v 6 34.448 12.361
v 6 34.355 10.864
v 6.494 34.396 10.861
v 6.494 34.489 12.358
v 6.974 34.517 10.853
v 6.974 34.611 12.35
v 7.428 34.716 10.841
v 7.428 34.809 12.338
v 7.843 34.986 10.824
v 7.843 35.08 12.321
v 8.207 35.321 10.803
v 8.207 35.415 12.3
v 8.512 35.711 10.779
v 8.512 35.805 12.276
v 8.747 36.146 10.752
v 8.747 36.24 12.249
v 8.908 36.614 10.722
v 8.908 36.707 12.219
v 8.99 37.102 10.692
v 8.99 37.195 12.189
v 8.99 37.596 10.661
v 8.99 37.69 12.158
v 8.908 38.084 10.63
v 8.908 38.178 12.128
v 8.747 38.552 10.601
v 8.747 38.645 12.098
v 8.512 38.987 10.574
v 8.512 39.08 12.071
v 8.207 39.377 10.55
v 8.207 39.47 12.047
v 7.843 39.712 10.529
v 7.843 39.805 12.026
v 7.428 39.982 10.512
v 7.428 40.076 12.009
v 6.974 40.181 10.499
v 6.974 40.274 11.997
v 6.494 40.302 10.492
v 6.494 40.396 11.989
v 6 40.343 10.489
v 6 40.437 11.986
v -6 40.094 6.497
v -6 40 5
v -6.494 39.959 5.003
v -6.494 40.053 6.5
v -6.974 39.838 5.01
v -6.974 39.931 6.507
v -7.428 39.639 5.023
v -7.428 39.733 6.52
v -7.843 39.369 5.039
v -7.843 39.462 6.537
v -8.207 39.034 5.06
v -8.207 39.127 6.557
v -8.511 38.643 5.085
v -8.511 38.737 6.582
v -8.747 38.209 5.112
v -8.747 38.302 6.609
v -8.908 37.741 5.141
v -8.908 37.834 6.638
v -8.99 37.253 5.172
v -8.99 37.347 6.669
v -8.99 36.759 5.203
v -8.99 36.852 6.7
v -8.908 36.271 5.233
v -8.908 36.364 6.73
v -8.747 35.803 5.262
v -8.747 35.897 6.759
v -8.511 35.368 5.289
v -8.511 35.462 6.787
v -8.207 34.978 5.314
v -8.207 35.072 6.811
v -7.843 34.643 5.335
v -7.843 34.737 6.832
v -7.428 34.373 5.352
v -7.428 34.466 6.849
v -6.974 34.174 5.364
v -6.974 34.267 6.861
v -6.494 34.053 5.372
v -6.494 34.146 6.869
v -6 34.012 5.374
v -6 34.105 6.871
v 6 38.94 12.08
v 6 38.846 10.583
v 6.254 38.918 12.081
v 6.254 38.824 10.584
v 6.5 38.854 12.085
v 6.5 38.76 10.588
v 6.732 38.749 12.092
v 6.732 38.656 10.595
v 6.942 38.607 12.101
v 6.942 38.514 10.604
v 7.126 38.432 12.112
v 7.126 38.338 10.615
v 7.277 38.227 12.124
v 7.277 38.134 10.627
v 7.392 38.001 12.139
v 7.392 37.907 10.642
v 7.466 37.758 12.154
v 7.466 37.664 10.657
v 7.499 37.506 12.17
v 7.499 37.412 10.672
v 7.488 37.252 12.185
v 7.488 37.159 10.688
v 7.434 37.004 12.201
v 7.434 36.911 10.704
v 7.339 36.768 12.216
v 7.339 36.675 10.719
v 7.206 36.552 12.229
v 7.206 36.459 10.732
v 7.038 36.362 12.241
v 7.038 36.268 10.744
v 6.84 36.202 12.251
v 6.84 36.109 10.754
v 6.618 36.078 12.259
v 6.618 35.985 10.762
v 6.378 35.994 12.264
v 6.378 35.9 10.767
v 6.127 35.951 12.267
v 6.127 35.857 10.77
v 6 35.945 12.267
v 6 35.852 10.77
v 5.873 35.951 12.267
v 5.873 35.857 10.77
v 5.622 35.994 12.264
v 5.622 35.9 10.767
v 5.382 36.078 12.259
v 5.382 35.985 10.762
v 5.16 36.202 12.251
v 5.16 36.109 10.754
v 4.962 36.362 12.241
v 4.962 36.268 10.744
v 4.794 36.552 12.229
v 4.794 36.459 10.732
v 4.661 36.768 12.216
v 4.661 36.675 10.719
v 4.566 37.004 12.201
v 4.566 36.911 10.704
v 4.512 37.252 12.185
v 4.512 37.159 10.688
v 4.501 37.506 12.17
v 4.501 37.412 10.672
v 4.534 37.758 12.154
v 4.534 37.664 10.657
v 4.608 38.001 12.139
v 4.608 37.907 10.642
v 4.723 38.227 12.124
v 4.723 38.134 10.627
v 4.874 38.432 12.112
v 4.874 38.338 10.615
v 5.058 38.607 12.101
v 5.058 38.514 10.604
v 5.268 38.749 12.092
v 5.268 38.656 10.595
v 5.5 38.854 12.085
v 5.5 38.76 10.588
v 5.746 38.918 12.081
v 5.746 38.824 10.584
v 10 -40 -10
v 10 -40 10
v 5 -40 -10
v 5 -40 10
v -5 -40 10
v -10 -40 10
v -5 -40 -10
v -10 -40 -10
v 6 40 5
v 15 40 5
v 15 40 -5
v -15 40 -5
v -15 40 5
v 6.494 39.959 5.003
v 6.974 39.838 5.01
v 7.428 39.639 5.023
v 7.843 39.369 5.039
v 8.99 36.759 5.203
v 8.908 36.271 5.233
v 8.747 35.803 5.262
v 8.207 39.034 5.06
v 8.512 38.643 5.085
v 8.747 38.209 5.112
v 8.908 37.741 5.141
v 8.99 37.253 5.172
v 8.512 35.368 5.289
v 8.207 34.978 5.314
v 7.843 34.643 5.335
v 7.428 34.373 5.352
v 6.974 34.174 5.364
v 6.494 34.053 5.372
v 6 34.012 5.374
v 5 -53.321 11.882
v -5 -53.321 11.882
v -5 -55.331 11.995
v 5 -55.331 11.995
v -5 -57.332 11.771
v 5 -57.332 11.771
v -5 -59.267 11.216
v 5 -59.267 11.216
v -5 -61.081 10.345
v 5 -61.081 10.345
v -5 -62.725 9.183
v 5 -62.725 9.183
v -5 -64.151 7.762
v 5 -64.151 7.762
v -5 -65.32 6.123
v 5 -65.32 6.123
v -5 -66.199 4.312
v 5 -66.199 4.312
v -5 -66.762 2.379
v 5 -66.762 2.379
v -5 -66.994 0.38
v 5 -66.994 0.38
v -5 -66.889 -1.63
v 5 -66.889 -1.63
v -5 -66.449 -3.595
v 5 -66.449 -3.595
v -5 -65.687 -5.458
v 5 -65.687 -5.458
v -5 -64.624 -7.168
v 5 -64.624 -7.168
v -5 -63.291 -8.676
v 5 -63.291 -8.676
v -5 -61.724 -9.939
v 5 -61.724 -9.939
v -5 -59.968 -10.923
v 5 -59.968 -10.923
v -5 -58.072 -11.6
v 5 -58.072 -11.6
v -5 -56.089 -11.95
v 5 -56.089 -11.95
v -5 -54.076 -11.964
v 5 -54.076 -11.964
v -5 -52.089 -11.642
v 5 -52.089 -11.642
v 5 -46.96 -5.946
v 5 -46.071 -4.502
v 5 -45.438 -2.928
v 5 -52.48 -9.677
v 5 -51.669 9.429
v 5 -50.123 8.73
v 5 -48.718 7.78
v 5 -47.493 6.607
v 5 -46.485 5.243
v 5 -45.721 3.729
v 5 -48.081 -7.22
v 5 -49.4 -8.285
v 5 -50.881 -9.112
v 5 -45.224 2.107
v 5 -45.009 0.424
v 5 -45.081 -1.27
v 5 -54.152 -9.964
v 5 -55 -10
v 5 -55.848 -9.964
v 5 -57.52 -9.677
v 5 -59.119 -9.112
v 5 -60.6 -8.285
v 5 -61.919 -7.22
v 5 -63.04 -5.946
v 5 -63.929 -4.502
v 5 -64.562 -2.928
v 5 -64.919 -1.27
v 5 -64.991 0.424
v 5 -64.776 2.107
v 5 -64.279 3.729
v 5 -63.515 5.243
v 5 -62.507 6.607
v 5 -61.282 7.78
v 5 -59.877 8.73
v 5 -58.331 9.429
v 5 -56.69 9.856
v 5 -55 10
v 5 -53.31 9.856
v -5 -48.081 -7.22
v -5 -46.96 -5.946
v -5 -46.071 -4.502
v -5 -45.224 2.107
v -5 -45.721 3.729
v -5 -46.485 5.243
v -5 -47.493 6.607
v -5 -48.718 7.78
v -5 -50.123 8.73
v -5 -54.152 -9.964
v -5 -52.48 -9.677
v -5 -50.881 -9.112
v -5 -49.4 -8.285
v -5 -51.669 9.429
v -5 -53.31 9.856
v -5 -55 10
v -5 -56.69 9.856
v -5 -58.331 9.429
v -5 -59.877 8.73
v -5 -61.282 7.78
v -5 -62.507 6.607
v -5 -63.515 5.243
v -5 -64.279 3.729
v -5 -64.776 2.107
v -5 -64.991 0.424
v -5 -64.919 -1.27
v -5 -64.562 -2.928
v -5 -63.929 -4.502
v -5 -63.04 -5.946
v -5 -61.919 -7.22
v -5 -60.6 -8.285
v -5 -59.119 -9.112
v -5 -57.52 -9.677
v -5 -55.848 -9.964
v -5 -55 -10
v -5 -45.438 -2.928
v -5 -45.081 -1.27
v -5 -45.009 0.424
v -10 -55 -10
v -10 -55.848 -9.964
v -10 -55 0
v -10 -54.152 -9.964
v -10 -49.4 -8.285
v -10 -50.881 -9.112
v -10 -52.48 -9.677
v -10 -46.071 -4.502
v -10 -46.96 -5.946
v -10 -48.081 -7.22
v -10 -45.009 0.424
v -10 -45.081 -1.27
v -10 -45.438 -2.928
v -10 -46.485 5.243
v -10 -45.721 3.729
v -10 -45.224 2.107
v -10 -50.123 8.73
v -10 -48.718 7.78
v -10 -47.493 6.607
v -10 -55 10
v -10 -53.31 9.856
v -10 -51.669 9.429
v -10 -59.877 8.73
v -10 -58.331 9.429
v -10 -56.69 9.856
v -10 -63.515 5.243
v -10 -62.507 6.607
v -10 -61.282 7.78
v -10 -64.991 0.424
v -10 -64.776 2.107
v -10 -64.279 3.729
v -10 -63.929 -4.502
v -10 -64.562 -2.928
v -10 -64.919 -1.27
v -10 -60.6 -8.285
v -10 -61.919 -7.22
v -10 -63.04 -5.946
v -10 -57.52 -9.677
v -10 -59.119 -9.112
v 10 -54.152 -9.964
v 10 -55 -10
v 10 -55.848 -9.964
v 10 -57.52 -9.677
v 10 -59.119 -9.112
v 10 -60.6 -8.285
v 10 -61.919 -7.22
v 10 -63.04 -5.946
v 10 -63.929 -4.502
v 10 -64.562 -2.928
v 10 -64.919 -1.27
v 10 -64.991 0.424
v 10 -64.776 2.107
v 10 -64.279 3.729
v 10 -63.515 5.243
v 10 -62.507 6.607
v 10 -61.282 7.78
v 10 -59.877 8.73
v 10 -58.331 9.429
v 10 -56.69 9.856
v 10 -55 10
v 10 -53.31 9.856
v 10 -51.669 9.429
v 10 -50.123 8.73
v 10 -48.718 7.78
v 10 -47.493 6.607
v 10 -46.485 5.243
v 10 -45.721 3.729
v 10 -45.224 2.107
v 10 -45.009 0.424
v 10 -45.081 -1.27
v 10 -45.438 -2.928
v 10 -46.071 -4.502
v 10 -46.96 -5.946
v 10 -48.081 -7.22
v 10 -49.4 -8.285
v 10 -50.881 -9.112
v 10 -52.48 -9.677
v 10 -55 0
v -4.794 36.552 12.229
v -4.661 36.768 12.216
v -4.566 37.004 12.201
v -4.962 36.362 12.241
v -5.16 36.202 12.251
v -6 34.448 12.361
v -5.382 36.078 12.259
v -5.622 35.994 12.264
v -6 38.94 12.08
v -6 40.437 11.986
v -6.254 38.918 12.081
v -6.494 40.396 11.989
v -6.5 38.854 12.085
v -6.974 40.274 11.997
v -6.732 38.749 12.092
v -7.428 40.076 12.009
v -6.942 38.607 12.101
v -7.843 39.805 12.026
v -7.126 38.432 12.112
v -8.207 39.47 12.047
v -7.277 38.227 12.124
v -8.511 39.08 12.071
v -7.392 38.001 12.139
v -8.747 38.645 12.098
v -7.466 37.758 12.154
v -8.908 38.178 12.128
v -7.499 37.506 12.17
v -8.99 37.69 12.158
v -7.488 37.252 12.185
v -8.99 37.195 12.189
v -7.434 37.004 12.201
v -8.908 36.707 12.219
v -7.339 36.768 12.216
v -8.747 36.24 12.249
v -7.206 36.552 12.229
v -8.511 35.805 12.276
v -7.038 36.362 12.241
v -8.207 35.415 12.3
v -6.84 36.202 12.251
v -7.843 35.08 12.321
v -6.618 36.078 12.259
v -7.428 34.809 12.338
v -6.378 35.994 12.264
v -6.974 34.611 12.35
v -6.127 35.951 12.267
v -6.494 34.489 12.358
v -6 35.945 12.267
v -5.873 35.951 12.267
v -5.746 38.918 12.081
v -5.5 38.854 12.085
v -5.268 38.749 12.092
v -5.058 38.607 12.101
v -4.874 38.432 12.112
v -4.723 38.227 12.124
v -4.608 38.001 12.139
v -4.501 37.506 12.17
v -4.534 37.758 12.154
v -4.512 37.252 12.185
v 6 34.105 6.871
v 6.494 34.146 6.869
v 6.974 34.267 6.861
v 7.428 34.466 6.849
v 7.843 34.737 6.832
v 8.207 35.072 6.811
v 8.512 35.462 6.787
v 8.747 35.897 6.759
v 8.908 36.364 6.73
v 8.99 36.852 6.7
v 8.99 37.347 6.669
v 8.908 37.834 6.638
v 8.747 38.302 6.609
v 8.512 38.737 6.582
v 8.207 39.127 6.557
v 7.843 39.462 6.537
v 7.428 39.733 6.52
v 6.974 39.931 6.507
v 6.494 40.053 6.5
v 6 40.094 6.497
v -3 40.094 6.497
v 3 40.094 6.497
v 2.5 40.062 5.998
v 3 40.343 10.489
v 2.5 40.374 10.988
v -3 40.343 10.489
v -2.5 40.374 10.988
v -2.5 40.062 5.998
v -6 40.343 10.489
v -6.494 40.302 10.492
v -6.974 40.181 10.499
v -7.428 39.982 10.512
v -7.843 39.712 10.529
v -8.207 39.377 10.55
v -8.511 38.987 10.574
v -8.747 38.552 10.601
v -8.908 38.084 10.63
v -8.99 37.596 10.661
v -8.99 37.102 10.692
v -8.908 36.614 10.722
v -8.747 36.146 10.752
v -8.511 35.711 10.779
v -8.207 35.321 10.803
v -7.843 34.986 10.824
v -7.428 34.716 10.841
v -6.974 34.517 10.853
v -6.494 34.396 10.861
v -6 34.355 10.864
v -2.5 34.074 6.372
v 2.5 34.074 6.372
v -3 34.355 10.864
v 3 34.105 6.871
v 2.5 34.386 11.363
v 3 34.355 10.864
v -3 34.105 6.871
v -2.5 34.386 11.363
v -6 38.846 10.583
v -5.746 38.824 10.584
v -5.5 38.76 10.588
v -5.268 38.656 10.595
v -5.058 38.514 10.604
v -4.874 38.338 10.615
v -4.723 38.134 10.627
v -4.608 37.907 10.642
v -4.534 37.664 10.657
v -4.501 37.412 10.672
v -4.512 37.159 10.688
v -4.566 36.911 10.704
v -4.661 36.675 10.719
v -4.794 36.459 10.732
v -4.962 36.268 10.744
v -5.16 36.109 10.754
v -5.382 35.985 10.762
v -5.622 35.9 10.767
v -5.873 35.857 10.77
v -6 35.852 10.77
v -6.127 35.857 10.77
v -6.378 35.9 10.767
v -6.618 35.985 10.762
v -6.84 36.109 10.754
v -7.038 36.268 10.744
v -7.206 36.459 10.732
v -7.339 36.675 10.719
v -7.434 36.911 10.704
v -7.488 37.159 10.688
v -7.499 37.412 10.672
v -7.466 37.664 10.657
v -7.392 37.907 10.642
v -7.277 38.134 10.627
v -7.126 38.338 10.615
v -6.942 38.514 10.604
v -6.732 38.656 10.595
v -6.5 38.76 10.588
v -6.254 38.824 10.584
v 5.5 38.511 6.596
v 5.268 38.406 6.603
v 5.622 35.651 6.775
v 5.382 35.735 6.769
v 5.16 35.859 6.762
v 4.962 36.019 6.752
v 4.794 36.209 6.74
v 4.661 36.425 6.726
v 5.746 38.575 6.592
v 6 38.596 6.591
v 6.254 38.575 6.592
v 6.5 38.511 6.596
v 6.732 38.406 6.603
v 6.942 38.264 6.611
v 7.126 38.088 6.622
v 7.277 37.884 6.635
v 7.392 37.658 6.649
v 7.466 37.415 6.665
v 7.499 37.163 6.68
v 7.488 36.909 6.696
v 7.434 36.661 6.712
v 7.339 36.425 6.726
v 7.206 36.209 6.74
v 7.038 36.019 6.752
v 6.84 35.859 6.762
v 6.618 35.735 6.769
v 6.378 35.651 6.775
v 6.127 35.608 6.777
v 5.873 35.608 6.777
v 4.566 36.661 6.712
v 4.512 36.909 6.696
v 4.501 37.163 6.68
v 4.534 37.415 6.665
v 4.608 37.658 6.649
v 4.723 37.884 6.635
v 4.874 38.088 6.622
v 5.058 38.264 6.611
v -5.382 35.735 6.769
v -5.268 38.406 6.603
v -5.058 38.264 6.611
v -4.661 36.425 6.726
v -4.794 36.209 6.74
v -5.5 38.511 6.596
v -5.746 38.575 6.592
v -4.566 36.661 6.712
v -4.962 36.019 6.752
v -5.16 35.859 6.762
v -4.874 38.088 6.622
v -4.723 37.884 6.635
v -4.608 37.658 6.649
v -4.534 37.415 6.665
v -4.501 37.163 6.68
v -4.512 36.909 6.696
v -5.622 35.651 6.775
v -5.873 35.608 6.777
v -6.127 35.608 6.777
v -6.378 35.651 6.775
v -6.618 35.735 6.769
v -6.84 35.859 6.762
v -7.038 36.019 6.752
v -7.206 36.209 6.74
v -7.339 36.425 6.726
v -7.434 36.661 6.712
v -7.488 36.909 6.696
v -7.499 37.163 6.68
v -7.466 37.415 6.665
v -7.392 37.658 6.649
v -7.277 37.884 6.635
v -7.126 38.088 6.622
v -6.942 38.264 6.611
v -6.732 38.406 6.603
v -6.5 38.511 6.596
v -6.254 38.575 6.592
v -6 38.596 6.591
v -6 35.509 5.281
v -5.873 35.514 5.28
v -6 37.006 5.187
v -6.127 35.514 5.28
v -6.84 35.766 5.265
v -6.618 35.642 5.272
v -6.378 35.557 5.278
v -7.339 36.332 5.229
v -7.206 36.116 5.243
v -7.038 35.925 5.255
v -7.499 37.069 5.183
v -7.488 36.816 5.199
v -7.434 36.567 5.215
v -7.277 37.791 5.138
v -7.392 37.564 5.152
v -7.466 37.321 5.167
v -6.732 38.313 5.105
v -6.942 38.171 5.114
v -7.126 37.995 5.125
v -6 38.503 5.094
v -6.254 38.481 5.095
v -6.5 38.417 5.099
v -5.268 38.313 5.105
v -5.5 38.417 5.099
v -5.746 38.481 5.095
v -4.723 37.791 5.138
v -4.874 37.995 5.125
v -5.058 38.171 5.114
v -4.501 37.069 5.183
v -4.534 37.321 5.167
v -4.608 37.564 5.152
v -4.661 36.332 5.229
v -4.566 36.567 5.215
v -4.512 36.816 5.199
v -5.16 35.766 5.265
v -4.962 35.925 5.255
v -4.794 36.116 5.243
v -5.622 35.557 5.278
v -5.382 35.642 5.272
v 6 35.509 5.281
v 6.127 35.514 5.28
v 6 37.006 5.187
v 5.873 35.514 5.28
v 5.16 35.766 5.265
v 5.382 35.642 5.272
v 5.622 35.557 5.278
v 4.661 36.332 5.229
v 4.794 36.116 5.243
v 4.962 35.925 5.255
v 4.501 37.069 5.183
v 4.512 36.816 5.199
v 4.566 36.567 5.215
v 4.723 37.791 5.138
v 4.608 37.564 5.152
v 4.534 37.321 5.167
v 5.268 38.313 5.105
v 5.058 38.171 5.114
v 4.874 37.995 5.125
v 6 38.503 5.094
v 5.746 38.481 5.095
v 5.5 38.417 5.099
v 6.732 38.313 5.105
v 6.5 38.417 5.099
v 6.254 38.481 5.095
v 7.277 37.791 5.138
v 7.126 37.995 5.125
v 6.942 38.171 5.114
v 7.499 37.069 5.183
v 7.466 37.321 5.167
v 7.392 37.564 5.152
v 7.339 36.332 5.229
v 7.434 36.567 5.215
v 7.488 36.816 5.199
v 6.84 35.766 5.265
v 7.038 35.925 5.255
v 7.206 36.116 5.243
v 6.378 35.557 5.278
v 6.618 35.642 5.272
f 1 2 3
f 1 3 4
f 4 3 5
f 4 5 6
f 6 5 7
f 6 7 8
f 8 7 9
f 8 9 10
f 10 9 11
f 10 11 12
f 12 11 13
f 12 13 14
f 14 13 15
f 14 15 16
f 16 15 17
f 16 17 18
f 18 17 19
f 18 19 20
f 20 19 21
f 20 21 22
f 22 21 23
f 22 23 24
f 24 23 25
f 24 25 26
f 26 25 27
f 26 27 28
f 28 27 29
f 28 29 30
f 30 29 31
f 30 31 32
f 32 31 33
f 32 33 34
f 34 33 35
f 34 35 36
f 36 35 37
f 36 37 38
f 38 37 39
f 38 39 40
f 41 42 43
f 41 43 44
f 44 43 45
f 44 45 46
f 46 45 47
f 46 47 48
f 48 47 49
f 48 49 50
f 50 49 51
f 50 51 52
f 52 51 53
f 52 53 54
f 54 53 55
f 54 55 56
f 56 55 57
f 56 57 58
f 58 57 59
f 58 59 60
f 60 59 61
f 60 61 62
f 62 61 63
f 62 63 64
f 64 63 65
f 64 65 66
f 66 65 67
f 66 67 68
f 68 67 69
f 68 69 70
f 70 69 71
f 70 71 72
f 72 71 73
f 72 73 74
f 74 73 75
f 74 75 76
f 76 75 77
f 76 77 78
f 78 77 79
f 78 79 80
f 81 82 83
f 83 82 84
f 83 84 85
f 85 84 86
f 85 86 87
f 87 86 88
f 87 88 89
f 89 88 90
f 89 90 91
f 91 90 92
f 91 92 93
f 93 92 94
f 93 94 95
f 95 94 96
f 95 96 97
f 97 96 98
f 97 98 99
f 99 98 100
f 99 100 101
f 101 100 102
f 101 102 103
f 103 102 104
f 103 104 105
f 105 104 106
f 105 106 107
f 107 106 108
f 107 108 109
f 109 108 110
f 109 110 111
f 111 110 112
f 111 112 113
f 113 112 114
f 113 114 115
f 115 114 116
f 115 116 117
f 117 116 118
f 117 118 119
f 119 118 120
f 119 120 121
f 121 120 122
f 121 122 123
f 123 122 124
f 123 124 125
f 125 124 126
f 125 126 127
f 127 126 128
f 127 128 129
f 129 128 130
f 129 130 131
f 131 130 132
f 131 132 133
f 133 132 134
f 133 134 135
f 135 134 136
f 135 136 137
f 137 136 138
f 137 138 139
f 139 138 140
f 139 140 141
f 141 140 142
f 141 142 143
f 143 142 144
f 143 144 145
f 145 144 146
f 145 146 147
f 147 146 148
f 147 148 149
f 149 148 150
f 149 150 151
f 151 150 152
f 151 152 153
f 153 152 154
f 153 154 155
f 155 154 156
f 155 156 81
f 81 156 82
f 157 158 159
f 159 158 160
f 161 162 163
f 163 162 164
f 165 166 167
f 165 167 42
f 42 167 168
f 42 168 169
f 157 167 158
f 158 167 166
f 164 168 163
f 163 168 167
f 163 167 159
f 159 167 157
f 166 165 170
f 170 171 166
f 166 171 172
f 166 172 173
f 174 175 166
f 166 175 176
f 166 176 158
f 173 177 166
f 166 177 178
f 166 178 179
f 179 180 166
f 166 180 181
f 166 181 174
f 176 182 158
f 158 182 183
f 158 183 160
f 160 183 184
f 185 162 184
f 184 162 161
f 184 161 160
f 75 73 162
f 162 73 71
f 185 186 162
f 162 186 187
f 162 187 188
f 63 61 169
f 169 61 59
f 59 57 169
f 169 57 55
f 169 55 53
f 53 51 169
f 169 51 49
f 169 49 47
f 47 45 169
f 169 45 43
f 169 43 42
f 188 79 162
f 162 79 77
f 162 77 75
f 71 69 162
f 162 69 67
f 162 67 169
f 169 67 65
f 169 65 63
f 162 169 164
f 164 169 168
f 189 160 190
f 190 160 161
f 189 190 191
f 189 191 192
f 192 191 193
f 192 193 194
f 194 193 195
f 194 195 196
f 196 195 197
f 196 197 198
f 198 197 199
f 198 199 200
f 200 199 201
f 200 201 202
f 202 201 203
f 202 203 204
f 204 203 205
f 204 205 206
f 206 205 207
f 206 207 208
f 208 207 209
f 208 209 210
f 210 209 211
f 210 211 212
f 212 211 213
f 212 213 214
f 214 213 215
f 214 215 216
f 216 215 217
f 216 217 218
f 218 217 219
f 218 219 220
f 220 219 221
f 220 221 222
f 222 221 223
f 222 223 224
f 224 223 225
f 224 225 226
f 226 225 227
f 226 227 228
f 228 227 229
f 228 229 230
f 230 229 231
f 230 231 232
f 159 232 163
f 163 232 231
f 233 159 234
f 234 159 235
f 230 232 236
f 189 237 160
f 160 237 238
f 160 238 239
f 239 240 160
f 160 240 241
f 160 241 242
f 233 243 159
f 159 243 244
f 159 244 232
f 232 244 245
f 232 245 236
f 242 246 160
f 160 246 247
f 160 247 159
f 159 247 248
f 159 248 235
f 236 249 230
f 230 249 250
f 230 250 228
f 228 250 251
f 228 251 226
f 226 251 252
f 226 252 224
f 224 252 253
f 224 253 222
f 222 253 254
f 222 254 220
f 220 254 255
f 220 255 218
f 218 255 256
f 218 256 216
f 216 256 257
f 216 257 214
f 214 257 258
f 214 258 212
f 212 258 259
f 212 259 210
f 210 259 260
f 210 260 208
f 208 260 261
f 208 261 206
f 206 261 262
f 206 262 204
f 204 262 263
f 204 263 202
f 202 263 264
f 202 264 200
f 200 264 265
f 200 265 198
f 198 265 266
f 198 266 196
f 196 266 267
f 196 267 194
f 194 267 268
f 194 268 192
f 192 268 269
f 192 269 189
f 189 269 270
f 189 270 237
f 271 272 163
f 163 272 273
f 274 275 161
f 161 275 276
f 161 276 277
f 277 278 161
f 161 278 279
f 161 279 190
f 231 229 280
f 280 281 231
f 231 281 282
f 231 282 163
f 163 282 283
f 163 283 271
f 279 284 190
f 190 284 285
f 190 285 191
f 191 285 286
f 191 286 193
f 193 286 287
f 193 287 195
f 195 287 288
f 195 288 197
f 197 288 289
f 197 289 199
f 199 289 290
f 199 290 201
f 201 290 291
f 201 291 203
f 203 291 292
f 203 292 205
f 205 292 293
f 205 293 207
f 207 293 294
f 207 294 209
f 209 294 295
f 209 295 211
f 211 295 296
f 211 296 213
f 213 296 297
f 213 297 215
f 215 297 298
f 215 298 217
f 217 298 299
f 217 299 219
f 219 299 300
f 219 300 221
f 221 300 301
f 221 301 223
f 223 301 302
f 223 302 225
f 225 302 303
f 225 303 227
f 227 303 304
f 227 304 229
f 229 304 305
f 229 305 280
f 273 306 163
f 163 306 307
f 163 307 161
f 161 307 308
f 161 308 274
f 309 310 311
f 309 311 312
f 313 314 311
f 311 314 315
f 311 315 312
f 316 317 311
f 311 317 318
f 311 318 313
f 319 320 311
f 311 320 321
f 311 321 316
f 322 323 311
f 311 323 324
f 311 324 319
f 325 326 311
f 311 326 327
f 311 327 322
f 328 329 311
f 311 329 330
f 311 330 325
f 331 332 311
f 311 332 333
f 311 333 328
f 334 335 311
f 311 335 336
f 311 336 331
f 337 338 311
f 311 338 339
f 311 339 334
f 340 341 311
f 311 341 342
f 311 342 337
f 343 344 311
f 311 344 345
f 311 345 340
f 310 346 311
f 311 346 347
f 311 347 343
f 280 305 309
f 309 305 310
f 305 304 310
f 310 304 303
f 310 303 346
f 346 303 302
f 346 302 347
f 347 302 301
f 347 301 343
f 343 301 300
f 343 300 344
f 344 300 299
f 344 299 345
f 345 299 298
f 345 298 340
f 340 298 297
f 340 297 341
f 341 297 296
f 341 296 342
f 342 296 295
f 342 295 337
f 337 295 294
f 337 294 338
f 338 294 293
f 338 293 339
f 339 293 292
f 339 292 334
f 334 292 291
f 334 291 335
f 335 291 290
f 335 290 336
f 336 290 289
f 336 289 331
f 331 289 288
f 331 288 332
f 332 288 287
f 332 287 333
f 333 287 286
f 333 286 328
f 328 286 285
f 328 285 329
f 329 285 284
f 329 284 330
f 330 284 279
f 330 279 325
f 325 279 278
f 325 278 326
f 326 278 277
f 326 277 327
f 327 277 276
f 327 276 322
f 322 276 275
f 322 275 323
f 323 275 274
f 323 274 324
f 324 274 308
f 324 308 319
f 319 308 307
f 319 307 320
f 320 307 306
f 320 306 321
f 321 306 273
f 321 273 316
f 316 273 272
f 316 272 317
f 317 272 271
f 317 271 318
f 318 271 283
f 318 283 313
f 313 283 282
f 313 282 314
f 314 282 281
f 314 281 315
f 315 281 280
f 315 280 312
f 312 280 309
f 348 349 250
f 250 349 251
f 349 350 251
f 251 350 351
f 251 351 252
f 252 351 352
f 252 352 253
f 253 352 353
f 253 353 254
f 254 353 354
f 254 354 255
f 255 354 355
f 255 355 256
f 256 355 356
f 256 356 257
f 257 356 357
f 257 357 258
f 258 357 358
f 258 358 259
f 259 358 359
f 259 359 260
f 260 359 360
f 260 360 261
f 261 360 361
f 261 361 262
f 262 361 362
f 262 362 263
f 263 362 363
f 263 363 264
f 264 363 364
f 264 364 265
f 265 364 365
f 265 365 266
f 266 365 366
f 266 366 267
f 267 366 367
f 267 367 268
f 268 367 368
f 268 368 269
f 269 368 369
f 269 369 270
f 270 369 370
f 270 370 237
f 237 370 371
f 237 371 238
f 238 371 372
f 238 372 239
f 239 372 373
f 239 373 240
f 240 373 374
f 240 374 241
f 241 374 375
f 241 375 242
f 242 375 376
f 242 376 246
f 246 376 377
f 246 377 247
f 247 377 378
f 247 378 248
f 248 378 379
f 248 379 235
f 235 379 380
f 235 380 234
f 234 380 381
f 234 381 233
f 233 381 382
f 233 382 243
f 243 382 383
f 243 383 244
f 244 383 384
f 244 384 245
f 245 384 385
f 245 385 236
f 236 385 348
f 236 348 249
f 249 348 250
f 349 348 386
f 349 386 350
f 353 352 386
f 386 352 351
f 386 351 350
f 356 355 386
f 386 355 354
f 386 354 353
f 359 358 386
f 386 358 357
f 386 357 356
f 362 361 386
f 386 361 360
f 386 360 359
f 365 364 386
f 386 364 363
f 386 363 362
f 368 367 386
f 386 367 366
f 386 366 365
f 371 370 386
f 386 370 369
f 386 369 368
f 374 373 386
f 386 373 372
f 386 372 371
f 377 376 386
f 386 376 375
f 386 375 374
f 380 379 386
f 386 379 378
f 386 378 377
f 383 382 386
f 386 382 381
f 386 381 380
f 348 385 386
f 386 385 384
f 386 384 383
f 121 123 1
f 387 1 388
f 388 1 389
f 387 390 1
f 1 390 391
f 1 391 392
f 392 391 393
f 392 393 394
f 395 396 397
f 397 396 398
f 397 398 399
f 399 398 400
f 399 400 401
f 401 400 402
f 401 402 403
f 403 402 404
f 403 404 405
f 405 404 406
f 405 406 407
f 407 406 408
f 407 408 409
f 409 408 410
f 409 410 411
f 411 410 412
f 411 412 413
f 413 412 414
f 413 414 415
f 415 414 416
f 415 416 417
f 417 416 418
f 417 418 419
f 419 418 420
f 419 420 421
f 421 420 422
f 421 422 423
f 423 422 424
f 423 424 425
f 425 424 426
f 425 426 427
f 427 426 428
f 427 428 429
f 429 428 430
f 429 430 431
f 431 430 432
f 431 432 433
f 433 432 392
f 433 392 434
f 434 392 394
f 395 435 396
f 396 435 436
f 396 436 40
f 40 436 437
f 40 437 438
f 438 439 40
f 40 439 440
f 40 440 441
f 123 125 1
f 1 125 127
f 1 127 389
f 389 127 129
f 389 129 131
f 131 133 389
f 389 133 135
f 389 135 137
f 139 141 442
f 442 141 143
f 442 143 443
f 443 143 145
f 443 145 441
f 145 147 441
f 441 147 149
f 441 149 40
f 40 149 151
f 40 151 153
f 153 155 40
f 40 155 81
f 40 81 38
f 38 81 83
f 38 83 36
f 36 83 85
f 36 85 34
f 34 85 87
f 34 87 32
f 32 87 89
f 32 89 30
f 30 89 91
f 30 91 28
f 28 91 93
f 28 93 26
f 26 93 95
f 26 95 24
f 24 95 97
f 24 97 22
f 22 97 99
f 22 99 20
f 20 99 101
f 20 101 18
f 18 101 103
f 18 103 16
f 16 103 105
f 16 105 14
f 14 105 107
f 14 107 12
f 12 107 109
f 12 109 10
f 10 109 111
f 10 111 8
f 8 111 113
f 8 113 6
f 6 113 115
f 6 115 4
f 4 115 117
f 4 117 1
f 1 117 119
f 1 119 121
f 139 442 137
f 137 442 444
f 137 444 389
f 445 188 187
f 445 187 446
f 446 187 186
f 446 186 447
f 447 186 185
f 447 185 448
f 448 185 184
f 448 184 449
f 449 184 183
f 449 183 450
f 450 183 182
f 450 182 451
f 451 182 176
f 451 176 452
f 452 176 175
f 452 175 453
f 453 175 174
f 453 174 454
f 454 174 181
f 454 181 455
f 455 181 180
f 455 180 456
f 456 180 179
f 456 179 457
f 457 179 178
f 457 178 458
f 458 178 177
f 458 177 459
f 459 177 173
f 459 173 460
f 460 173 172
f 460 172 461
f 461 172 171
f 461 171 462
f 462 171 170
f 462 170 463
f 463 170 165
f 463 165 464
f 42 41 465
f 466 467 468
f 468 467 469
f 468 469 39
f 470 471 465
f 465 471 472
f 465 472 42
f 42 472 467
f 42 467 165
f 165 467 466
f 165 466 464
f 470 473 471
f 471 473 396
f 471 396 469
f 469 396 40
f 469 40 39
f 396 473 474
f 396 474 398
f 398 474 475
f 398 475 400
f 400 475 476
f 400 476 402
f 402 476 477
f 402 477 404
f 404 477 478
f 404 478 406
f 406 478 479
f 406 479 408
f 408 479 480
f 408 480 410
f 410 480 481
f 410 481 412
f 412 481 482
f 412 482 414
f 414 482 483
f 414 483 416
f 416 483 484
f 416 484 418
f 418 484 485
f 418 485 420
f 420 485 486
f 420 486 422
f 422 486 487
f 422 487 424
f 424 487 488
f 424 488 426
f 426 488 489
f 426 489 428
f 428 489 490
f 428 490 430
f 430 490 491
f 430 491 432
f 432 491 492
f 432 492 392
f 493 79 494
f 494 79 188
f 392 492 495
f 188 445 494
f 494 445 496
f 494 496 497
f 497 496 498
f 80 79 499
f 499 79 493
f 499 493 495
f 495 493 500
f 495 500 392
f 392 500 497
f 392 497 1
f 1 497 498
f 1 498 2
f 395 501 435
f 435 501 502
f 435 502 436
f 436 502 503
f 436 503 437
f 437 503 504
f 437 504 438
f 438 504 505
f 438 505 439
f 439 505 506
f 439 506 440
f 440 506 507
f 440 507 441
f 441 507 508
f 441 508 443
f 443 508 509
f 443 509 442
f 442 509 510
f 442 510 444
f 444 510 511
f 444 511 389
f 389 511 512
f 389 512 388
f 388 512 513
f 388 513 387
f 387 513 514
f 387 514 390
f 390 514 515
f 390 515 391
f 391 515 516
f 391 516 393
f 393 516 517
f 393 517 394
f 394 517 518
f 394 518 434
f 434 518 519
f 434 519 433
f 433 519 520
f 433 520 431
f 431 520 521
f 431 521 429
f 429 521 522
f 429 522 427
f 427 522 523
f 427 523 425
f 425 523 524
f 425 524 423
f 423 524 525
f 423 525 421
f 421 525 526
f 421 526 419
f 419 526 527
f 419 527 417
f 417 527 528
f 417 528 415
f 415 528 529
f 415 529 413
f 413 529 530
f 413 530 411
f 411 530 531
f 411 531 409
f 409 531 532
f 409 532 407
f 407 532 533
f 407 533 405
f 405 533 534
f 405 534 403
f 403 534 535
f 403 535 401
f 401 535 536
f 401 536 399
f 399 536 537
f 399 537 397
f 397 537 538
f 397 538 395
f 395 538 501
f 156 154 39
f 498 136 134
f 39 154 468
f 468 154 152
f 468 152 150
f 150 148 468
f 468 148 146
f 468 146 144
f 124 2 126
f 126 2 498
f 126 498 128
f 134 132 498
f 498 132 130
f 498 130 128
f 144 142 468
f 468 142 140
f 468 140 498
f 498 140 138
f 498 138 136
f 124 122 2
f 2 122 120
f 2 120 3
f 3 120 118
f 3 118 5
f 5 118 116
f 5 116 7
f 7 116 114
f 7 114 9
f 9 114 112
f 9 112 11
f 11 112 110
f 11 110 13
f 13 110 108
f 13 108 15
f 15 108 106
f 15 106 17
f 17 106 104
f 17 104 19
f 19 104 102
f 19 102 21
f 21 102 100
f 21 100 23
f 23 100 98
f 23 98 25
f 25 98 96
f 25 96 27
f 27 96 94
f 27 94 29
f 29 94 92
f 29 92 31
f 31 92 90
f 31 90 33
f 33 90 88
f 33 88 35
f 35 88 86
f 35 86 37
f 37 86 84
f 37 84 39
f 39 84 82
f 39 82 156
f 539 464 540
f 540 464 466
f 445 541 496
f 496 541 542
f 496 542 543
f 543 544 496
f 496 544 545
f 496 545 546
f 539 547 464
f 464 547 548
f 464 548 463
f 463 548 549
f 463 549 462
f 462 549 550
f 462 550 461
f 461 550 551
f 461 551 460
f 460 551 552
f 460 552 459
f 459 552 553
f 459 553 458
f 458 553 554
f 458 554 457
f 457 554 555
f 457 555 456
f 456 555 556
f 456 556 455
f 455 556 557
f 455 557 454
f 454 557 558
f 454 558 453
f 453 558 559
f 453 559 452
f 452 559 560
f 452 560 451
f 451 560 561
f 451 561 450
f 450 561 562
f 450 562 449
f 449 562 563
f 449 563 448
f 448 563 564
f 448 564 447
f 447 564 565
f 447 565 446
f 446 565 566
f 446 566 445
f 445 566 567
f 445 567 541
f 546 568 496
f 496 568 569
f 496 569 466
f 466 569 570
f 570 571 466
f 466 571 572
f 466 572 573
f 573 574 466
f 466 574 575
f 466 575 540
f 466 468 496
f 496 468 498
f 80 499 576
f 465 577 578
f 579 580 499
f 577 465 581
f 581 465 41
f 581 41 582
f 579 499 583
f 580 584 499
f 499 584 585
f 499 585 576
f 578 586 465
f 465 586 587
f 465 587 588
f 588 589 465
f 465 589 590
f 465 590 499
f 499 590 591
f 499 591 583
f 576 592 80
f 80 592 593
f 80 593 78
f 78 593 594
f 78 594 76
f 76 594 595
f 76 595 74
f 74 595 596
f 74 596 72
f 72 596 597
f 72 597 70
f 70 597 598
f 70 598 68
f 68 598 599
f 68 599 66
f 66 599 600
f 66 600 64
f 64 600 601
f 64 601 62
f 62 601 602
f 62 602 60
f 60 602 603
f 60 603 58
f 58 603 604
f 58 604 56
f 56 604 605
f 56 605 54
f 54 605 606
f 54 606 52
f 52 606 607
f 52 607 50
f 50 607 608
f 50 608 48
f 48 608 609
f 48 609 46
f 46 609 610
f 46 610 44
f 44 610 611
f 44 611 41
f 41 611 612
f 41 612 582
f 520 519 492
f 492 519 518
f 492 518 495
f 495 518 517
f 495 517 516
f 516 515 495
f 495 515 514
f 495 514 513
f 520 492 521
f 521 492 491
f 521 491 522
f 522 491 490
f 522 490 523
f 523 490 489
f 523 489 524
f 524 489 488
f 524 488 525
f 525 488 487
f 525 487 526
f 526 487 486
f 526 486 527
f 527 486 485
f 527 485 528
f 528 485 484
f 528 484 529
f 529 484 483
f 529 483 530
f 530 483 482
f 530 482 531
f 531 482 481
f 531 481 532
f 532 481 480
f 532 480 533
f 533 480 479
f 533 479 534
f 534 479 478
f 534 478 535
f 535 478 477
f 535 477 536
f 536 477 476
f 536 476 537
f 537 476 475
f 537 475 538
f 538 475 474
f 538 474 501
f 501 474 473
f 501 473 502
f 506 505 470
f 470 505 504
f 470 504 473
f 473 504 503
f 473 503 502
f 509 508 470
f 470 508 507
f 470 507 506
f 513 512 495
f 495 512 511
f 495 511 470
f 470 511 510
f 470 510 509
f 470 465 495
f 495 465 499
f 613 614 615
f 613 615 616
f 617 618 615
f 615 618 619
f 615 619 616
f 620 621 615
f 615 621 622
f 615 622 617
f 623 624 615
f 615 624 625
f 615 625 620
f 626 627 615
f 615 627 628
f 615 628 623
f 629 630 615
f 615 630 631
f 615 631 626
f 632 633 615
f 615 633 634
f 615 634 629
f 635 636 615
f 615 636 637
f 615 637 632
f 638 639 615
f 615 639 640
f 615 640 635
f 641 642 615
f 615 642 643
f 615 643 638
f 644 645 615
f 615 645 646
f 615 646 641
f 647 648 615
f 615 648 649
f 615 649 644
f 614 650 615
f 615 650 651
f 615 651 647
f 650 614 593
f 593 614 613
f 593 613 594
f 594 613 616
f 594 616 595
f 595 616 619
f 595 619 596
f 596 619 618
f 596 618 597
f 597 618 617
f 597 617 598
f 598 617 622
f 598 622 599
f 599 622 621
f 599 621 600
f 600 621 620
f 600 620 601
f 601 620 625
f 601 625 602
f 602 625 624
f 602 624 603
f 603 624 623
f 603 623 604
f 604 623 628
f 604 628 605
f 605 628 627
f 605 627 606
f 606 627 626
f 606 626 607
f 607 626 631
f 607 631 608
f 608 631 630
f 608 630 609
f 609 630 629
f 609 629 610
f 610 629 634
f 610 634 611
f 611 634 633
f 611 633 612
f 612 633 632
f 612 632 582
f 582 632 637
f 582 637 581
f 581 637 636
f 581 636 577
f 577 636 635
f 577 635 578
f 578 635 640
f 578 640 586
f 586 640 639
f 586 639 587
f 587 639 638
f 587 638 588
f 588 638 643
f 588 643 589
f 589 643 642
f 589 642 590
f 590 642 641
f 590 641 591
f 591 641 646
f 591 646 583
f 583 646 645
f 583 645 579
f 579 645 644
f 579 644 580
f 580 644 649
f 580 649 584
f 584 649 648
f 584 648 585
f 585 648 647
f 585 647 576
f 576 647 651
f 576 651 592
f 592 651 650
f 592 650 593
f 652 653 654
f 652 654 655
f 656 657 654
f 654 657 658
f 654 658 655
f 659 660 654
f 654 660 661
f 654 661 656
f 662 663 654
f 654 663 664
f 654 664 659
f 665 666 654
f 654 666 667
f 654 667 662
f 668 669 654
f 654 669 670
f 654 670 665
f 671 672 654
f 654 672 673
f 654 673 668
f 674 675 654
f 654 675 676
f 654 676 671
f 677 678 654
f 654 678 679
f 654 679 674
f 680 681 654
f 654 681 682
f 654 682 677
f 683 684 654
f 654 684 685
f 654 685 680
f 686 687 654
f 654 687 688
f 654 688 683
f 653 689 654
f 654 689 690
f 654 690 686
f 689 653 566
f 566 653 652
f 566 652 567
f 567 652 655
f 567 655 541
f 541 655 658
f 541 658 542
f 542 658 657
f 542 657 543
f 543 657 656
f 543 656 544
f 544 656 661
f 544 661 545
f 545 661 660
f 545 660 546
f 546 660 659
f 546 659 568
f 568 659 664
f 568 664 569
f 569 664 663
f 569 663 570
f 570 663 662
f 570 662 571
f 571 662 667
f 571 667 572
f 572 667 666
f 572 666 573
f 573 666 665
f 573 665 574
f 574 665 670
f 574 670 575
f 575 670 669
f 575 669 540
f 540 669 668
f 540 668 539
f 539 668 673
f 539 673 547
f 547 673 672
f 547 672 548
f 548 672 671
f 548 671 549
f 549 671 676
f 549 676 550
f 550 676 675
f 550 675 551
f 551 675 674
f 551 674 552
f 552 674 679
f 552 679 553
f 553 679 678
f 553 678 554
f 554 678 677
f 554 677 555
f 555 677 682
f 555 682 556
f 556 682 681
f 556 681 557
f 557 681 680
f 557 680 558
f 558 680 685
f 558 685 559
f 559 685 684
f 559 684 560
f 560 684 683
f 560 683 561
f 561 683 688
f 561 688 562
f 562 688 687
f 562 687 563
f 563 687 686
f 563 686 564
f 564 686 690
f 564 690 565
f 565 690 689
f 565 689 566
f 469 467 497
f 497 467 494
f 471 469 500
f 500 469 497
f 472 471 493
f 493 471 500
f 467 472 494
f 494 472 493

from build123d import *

# Parameters (mm, degrees)
SALIENTE_EXTRUIR1_DEPTH = 5
CROQUIS4_R              = 10
SALIENTE_EXTRUIR2_DEPTH = 10
CROQUIS5_R              = 1.5
SALIENTE_EXTRUIR3_DEPTH = 7
CORTAR_EXTRUIR1_REACH   = 110.601
CROQUIS6_W              = 6
CROQUIS6_H              = 4
CROQUIS7_W              = 5
CROQUIS7_H              = 5
CORTAR_EXTRUIR2_DEPTH   = 6


with BuildPart() as part:
    # Croquis2 → Recubrir1 section 0
    with BuildSketch(Plane(origin=(0, 40, 0), x_dir=(1, 0, 0), z_dir=(0, 1, 0))):
        with BuildLine():
            Line((15, -5), (-15, -5))
            Line((-15, -5), (-15, 5))
            Line((-15, 5), (15, 5))
            Line((15, 5), (15, -5))
        make_face()
    # Croquis1 → Recubrir1 section 1
    with BuildSketch(Plane(origin=(0, -40, 0), x_dir=(1, 0, 0), z_dir=(0, 1, 0))):
        with BuildLine():
            Line((-10, 10), (10, 10))
            Line((10, 10), (10, -10))
            Line((10, -10), (-10, -10))
            Line((-10, -10), (-10, 10))
        make_face()
    loft()

    # Croquis3 → Saliente-Extruir1 (add, symmetric)
    with BuildSketch(Plane(origin=(0, 0, 0), x_dir=(0, 0, -1), z_dir=(1, 0, 0))):
        with BuildLine():
            Line((-10, -40), (-11.882007165, -53.32133811))
            ThreePointArc((-11.882007165, -53.32133811), (0.627532313, -66.983580567), (11.641690846, -52.089495878))
            Line((11.641690846, -52.089495878), (10, -40))
            Line((10, -40), (-10, -40))
        make_face()
    extrude(amount=SALIENTE_EXTRUIR1_DEPTH, both=True)

    # Croquis4 → Saliente-Extruir2 (add, symmetric)
    with BuildSketch(Plane(origin=(0, 0, 0), x_dir=(0, 0, -1), z_dir=(1, 0, 0))):
        with Locations((0, -55)):
            Circle(CROQUIS4_R)
    extrude(amount=SALIENTE_EXTRUIR2_DEPTH, both=True)

    # Croquis5 → Saliente-Extruir3 (add)
    with BuildSketch(Plane(origin=(0, 0.46692607, 7.470817121), x_dir=(1, 0, 0), z_dir=(0, 0.062378286155180505, 0.9980525784828886))):
        with BuildLine():
            Line((6, 33.610211709), (-6, 33.610211709))
            ThreePointArc((-6, 33.610211709), (-9, 36.610211709), (-6, 39.610211709))
            Line((-6, 39.610211709), (6, 39.610211709))
            ThreePointArc((6, 39.610211709), (9, 36.610211709), (6, 33.610211709))
        make_face()
        with Locations(Location((-6, 36.610211709, 0), (0, 0, 270))):
            Circle(CROQUIS5_R, mode=Mode.SUBTRACT)
        with Locations(Location((6, 36.610211709, 0), (0, 0, 270))):
            Circle(CROQUIS5_R, mode=Mode.SUBTRACT)
    extrude(amount=SALIENTE_EXTRUIR3_DEPTH)

    # Cortar-Extruir1: up to this face of the body (flat: up to its plane)
    cortar_extruir1_end = Plane(part.part.faces().sort_by_distance((0, 34.230008531, 8.867453742))[0])
    # Croquis6 → Cortar-Extruir1 (cut, up to the picked face)
    with BuildSketch(Plane(origin=(0, 39.53307393, -2.470817121), x_dir=(1, 0, 0), z_dir=(0, 0.9980525784828886, -0.062378286155180505)), mode=Mode.PRIVATE) as cortar_extruir1_sk1:
        with Locations((6, -10.985394339)):
            Rectangle(CROQUIS6_W, CROQUIS6_H)
    cortar_extruir1_tool1 = split(extrude(cortar_extruir1_sk1.sketch, amount=-CORTAR_EXTRUIR1_REACH, mode=Mode.PRIVATE), bisect_by=cortar_extruir1_end, keep=Keep.BOTH, mode=Mode.PRIVATE)
    # Croquis6 → Cortar-Extruir1 (cut, up to the picked face)
    with BuildSketch(Plane(origin=(0, 39.53307393, -2.470817121), x_dir=(1, 0, 0), z_dir=(0, 0.9980525784828886, -0.062378286155180505)), mode=Mode.PRIVATE) as cortar_extruir1_sk2:
        with Locations((-6, -10.985394339)):
            Rectangle(CROQUIS6_W, CROQUIS6_H)
    cortar_extruir1_tool2 = split(extrude(cortar_extruir1_sk2.sketch, amount=-CORTAR_EXTRUIR1_REACH, mode=Mode.PRIVATE), bisect_by=cortar_extruir1_end, keep=Keep.BOTH, mode=Mode.PRIVATE)
    add(cortar_extruir1_tool1.solids().sort_by(Axis((6, 40.218324, 8.493184), (0, -0.9980525784828886, 0.062378286155180505)))[0], mode=Mode.SUBTRACT)
    add(cortar_extruir1_tool2.solids().sort_by(Axis((-6, 40.218324, 8.493184), (0, -0.9980525784828886, 0.062378286155180505)))[0], mode=Mode.SUBTRACT)

    # Croquis7 → Cortar-Extruir2 (cut)
    with BuildSketch(Plane(origin=(0, 39.53307393, -2.470817121), x_dir=(1, 0, 0), z_dir=(-1.2640787676290823e-15, 0.9980525784828886, -0.062378286155180505))):
        with Locations((0, -10.985394339)):
            Rectangle(CROQUIS7_W, CROQUIS7_H)
    extrude(amount=-CORTAR_EXTRUIR2_DEPTH, mode=Mode.SUBTRACT)


solid = part.part
